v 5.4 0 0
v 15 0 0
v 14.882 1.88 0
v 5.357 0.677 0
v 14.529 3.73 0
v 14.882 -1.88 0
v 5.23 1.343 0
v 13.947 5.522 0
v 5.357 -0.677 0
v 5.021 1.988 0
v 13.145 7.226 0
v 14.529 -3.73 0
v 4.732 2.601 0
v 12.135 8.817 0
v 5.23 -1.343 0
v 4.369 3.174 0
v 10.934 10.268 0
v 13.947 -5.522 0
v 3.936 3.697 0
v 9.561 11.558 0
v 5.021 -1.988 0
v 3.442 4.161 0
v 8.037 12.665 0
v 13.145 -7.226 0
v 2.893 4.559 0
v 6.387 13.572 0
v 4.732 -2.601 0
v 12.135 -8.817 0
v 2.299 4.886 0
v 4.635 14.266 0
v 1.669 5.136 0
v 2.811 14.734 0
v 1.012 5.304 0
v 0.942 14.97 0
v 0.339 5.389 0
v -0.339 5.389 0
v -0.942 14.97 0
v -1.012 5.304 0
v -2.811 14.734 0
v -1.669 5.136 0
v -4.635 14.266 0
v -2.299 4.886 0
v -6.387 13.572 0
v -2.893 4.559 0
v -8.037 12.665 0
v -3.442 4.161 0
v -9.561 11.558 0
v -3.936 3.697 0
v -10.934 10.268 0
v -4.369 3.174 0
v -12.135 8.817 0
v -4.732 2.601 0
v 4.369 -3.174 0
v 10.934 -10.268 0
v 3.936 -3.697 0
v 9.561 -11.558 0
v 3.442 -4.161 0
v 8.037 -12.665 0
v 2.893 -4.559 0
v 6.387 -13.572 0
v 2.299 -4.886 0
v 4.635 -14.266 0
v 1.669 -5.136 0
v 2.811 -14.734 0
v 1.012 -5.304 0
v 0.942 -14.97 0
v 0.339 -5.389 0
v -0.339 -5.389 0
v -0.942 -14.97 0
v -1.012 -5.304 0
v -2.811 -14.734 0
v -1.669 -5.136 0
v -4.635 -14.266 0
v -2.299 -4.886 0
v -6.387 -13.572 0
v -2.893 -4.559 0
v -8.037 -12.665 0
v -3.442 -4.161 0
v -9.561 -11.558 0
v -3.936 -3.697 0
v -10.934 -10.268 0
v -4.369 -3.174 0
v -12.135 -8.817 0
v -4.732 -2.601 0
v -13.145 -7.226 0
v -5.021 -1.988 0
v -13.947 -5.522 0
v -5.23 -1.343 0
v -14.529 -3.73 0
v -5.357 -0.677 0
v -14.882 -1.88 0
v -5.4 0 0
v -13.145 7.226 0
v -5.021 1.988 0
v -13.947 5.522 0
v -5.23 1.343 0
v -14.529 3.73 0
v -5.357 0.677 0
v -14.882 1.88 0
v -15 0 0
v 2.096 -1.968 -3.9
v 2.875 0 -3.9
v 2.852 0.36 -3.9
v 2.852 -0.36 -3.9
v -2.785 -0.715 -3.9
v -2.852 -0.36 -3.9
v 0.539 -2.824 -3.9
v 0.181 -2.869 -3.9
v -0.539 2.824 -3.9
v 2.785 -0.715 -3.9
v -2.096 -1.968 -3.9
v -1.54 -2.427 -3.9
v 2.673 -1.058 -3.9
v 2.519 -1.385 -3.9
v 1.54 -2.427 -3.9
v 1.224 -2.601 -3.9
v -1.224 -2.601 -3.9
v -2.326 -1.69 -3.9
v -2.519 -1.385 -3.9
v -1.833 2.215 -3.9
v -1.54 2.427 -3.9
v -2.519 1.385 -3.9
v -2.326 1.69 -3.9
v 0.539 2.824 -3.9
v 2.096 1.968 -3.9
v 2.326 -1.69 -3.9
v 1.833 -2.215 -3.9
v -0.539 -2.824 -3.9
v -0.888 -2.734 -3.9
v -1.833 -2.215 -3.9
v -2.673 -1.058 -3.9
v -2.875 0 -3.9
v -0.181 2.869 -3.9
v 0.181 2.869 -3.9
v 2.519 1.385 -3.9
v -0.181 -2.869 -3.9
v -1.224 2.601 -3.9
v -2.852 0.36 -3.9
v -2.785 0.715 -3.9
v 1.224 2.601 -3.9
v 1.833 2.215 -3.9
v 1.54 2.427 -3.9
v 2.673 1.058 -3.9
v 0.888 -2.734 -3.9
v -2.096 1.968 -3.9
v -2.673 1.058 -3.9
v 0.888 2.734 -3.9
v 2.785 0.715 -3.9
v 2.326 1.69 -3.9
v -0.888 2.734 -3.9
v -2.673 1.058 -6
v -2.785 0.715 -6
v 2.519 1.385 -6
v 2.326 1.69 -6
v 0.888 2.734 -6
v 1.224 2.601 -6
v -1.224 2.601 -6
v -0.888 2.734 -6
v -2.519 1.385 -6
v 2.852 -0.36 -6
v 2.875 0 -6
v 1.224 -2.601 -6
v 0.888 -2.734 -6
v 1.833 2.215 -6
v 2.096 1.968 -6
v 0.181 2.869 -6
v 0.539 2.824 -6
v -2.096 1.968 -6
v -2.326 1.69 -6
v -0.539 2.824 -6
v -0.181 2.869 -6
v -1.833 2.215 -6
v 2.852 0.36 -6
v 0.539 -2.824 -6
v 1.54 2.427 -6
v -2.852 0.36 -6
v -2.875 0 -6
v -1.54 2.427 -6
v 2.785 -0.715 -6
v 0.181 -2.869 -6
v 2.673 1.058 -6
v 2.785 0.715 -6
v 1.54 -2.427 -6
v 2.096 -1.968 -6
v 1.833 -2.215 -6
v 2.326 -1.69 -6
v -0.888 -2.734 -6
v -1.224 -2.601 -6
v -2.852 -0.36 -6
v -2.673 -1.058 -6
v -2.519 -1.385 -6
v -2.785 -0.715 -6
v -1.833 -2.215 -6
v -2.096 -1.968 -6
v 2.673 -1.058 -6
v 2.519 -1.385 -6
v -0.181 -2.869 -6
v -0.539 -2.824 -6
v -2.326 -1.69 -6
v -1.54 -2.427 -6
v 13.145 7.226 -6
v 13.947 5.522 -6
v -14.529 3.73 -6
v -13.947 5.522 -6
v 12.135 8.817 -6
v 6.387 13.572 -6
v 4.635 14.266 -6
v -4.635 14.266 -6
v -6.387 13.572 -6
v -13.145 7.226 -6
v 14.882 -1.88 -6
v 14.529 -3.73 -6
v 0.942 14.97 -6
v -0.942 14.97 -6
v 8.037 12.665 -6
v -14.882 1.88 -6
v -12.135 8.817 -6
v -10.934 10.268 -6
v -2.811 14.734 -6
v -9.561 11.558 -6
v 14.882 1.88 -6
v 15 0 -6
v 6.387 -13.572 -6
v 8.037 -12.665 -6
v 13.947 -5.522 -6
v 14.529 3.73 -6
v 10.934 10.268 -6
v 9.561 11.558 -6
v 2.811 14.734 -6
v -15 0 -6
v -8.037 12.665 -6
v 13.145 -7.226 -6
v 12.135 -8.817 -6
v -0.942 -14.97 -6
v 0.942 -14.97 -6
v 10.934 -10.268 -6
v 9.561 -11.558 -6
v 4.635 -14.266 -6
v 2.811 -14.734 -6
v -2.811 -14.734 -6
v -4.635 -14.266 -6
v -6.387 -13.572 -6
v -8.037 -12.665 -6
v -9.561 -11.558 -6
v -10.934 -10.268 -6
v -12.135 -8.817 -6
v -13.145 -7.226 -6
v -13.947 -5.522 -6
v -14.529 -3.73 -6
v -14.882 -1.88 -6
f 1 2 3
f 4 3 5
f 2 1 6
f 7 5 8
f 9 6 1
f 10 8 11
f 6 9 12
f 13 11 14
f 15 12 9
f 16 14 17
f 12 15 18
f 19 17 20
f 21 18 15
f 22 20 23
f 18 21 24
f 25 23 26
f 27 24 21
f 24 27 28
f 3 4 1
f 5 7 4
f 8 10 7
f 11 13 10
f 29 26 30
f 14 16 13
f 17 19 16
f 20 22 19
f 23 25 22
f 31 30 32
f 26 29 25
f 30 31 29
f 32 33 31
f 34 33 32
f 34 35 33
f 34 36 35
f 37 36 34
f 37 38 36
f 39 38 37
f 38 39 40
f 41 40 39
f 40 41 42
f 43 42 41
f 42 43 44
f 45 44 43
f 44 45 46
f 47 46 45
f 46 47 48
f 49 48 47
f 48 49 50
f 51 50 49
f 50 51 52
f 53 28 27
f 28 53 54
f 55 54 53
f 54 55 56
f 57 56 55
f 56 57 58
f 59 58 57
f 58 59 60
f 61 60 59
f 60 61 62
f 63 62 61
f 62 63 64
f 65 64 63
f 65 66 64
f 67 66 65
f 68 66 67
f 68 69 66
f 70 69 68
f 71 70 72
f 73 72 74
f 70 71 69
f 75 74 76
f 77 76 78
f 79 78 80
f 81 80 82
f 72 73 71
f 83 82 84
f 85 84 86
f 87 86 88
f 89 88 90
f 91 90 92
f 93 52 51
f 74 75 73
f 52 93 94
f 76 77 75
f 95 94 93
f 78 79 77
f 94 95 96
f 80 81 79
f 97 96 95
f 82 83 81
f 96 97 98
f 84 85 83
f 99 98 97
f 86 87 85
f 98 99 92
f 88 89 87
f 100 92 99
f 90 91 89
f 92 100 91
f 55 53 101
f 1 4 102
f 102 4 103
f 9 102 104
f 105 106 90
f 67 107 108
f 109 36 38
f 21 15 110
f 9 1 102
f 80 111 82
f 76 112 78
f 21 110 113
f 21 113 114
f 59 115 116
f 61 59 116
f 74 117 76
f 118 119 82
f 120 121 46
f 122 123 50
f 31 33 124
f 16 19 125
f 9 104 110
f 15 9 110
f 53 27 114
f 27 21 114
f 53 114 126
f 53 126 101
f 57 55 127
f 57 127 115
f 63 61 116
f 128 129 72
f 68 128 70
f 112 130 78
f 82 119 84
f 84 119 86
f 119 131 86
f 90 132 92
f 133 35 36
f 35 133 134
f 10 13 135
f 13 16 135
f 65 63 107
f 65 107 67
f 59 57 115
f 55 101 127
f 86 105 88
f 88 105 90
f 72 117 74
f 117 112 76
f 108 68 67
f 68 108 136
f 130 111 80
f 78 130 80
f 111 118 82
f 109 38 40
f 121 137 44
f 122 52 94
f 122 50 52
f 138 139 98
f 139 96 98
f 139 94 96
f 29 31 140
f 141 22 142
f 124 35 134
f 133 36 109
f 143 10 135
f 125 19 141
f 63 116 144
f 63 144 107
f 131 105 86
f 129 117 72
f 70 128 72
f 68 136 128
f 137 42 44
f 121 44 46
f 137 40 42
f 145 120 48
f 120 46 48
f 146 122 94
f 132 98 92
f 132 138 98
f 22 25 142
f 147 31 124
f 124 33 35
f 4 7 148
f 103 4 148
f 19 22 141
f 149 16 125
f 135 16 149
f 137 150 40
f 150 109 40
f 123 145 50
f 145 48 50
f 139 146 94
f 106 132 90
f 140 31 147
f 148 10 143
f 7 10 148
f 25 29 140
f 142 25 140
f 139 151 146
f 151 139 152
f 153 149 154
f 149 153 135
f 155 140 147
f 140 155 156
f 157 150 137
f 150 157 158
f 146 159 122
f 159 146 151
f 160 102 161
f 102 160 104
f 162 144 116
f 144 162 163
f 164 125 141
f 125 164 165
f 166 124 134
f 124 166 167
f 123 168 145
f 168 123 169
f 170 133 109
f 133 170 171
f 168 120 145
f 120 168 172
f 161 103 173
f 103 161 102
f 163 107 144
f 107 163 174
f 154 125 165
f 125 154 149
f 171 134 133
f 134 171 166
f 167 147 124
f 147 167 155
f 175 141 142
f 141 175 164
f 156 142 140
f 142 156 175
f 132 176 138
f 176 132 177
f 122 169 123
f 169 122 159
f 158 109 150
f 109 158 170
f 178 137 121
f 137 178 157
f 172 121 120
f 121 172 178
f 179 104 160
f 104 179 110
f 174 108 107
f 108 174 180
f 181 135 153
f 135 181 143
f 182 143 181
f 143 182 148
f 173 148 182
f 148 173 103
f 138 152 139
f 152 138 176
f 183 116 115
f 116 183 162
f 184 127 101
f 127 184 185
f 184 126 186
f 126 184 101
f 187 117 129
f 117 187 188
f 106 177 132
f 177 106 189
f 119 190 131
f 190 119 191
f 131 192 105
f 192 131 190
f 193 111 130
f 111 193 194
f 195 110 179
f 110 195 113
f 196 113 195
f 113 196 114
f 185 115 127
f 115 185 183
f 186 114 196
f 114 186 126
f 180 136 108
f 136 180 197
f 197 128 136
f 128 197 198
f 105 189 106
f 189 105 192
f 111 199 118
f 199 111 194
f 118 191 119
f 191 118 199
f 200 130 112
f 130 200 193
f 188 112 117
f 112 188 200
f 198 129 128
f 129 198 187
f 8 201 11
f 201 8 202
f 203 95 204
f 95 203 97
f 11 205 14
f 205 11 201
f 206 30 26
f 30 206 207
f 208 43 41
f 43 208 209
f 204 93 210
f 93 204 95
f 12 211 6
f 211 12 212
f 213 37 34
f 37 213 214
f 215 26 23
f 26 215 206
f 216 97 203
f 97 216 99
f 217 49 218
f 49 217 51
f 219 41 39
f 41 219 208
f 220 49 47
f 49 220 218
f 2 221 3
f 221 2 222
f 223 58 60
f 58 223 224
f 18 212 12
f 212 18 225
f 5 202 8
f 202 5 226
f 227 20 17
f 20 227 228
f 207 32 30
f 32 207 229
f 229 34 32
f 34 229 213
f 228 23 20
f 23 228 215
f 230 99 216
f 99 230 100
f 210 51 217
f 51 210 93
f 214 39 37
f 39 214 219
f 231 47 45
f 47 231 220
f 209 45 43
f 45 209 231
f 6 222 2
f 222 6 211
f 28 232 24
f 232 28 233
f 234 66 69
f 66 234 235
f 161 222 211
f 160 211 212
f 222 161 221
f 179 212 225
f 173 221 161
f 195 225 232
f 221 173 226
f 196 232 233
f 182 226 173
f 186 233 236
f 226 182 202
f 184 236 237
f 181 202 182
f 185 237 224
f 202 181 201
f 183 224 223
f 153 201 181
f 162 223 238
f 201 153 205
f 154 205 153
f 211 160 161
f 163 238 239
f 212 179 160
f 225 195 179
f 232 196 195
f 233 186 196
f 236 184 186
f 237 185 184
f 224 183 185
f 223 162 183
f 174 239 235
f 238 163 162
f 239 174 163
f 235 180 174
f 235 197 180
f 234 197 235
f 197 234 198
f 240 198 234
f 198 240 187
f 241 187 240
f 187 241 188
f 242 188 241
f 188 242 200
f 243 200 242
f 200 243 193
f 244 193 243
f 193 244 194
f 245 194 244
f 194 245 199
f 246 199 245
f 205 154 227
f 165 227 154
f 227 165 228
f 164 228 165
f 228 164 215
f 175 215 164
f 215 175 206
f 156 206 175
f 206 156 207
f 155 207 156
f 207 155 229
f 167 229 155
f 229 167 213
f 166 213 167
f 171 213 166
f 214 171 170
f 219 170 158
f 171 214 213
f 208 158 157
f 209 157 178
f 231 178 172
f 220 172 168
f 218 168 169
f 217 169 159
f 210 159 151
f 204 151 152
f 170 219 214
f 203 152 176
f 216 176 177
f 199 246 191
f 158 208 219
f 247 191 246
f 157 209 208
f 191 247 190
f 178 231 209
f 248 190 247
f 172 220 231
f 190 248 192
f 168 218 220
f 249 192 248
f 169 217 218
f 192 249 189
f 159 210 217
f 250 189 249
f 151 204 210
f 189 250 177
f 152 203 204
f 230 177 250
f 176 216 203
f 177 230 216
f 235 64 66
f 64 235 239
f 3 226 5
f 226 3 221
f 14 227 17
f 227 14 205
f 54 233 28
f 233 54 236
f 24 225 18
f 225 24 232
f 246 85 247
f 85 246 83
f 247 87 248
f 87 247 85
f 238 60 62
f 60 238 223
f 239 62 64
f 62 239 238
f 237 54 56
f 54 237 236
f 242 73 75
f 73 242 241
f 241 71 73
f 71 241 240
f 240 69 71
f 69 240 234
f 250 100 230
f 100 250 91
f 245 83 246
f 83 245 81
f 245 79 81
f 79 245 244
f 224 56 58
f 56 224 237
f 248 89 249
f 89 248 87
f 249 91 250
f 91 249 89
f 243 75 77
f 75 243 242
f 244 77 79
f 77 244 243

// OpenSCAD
$fn = 50;

difference() {
	union() {
		translate(v = [0, 0, -6.0]) {
			cylinder(h = 6, r = 15.0);
		}
	}
	union() {
		translate(v = [0, 0, 0]) {
			rotate(a = [0, 0, 0]) {
				difference() {
					union() {
						translate(v = [0, 0, -9.0]) {
							cylinder(h = 9, r = 2.6);
						}
						translate(v = [0, 0, -3.9]) {
							cylinder(h = 3.9, r1 = 2.875, r2 = 5.4);
						}
						translate(v = [0, 0, -9.0]) {
							cylinder(h = 9, r = 2.875);
						}
						translate(v = [0, 0, -9.0]) {
							cylinder(h = 9, r = 2.6);
						}
					}
					union();
				}
			}
		}
	}
}
